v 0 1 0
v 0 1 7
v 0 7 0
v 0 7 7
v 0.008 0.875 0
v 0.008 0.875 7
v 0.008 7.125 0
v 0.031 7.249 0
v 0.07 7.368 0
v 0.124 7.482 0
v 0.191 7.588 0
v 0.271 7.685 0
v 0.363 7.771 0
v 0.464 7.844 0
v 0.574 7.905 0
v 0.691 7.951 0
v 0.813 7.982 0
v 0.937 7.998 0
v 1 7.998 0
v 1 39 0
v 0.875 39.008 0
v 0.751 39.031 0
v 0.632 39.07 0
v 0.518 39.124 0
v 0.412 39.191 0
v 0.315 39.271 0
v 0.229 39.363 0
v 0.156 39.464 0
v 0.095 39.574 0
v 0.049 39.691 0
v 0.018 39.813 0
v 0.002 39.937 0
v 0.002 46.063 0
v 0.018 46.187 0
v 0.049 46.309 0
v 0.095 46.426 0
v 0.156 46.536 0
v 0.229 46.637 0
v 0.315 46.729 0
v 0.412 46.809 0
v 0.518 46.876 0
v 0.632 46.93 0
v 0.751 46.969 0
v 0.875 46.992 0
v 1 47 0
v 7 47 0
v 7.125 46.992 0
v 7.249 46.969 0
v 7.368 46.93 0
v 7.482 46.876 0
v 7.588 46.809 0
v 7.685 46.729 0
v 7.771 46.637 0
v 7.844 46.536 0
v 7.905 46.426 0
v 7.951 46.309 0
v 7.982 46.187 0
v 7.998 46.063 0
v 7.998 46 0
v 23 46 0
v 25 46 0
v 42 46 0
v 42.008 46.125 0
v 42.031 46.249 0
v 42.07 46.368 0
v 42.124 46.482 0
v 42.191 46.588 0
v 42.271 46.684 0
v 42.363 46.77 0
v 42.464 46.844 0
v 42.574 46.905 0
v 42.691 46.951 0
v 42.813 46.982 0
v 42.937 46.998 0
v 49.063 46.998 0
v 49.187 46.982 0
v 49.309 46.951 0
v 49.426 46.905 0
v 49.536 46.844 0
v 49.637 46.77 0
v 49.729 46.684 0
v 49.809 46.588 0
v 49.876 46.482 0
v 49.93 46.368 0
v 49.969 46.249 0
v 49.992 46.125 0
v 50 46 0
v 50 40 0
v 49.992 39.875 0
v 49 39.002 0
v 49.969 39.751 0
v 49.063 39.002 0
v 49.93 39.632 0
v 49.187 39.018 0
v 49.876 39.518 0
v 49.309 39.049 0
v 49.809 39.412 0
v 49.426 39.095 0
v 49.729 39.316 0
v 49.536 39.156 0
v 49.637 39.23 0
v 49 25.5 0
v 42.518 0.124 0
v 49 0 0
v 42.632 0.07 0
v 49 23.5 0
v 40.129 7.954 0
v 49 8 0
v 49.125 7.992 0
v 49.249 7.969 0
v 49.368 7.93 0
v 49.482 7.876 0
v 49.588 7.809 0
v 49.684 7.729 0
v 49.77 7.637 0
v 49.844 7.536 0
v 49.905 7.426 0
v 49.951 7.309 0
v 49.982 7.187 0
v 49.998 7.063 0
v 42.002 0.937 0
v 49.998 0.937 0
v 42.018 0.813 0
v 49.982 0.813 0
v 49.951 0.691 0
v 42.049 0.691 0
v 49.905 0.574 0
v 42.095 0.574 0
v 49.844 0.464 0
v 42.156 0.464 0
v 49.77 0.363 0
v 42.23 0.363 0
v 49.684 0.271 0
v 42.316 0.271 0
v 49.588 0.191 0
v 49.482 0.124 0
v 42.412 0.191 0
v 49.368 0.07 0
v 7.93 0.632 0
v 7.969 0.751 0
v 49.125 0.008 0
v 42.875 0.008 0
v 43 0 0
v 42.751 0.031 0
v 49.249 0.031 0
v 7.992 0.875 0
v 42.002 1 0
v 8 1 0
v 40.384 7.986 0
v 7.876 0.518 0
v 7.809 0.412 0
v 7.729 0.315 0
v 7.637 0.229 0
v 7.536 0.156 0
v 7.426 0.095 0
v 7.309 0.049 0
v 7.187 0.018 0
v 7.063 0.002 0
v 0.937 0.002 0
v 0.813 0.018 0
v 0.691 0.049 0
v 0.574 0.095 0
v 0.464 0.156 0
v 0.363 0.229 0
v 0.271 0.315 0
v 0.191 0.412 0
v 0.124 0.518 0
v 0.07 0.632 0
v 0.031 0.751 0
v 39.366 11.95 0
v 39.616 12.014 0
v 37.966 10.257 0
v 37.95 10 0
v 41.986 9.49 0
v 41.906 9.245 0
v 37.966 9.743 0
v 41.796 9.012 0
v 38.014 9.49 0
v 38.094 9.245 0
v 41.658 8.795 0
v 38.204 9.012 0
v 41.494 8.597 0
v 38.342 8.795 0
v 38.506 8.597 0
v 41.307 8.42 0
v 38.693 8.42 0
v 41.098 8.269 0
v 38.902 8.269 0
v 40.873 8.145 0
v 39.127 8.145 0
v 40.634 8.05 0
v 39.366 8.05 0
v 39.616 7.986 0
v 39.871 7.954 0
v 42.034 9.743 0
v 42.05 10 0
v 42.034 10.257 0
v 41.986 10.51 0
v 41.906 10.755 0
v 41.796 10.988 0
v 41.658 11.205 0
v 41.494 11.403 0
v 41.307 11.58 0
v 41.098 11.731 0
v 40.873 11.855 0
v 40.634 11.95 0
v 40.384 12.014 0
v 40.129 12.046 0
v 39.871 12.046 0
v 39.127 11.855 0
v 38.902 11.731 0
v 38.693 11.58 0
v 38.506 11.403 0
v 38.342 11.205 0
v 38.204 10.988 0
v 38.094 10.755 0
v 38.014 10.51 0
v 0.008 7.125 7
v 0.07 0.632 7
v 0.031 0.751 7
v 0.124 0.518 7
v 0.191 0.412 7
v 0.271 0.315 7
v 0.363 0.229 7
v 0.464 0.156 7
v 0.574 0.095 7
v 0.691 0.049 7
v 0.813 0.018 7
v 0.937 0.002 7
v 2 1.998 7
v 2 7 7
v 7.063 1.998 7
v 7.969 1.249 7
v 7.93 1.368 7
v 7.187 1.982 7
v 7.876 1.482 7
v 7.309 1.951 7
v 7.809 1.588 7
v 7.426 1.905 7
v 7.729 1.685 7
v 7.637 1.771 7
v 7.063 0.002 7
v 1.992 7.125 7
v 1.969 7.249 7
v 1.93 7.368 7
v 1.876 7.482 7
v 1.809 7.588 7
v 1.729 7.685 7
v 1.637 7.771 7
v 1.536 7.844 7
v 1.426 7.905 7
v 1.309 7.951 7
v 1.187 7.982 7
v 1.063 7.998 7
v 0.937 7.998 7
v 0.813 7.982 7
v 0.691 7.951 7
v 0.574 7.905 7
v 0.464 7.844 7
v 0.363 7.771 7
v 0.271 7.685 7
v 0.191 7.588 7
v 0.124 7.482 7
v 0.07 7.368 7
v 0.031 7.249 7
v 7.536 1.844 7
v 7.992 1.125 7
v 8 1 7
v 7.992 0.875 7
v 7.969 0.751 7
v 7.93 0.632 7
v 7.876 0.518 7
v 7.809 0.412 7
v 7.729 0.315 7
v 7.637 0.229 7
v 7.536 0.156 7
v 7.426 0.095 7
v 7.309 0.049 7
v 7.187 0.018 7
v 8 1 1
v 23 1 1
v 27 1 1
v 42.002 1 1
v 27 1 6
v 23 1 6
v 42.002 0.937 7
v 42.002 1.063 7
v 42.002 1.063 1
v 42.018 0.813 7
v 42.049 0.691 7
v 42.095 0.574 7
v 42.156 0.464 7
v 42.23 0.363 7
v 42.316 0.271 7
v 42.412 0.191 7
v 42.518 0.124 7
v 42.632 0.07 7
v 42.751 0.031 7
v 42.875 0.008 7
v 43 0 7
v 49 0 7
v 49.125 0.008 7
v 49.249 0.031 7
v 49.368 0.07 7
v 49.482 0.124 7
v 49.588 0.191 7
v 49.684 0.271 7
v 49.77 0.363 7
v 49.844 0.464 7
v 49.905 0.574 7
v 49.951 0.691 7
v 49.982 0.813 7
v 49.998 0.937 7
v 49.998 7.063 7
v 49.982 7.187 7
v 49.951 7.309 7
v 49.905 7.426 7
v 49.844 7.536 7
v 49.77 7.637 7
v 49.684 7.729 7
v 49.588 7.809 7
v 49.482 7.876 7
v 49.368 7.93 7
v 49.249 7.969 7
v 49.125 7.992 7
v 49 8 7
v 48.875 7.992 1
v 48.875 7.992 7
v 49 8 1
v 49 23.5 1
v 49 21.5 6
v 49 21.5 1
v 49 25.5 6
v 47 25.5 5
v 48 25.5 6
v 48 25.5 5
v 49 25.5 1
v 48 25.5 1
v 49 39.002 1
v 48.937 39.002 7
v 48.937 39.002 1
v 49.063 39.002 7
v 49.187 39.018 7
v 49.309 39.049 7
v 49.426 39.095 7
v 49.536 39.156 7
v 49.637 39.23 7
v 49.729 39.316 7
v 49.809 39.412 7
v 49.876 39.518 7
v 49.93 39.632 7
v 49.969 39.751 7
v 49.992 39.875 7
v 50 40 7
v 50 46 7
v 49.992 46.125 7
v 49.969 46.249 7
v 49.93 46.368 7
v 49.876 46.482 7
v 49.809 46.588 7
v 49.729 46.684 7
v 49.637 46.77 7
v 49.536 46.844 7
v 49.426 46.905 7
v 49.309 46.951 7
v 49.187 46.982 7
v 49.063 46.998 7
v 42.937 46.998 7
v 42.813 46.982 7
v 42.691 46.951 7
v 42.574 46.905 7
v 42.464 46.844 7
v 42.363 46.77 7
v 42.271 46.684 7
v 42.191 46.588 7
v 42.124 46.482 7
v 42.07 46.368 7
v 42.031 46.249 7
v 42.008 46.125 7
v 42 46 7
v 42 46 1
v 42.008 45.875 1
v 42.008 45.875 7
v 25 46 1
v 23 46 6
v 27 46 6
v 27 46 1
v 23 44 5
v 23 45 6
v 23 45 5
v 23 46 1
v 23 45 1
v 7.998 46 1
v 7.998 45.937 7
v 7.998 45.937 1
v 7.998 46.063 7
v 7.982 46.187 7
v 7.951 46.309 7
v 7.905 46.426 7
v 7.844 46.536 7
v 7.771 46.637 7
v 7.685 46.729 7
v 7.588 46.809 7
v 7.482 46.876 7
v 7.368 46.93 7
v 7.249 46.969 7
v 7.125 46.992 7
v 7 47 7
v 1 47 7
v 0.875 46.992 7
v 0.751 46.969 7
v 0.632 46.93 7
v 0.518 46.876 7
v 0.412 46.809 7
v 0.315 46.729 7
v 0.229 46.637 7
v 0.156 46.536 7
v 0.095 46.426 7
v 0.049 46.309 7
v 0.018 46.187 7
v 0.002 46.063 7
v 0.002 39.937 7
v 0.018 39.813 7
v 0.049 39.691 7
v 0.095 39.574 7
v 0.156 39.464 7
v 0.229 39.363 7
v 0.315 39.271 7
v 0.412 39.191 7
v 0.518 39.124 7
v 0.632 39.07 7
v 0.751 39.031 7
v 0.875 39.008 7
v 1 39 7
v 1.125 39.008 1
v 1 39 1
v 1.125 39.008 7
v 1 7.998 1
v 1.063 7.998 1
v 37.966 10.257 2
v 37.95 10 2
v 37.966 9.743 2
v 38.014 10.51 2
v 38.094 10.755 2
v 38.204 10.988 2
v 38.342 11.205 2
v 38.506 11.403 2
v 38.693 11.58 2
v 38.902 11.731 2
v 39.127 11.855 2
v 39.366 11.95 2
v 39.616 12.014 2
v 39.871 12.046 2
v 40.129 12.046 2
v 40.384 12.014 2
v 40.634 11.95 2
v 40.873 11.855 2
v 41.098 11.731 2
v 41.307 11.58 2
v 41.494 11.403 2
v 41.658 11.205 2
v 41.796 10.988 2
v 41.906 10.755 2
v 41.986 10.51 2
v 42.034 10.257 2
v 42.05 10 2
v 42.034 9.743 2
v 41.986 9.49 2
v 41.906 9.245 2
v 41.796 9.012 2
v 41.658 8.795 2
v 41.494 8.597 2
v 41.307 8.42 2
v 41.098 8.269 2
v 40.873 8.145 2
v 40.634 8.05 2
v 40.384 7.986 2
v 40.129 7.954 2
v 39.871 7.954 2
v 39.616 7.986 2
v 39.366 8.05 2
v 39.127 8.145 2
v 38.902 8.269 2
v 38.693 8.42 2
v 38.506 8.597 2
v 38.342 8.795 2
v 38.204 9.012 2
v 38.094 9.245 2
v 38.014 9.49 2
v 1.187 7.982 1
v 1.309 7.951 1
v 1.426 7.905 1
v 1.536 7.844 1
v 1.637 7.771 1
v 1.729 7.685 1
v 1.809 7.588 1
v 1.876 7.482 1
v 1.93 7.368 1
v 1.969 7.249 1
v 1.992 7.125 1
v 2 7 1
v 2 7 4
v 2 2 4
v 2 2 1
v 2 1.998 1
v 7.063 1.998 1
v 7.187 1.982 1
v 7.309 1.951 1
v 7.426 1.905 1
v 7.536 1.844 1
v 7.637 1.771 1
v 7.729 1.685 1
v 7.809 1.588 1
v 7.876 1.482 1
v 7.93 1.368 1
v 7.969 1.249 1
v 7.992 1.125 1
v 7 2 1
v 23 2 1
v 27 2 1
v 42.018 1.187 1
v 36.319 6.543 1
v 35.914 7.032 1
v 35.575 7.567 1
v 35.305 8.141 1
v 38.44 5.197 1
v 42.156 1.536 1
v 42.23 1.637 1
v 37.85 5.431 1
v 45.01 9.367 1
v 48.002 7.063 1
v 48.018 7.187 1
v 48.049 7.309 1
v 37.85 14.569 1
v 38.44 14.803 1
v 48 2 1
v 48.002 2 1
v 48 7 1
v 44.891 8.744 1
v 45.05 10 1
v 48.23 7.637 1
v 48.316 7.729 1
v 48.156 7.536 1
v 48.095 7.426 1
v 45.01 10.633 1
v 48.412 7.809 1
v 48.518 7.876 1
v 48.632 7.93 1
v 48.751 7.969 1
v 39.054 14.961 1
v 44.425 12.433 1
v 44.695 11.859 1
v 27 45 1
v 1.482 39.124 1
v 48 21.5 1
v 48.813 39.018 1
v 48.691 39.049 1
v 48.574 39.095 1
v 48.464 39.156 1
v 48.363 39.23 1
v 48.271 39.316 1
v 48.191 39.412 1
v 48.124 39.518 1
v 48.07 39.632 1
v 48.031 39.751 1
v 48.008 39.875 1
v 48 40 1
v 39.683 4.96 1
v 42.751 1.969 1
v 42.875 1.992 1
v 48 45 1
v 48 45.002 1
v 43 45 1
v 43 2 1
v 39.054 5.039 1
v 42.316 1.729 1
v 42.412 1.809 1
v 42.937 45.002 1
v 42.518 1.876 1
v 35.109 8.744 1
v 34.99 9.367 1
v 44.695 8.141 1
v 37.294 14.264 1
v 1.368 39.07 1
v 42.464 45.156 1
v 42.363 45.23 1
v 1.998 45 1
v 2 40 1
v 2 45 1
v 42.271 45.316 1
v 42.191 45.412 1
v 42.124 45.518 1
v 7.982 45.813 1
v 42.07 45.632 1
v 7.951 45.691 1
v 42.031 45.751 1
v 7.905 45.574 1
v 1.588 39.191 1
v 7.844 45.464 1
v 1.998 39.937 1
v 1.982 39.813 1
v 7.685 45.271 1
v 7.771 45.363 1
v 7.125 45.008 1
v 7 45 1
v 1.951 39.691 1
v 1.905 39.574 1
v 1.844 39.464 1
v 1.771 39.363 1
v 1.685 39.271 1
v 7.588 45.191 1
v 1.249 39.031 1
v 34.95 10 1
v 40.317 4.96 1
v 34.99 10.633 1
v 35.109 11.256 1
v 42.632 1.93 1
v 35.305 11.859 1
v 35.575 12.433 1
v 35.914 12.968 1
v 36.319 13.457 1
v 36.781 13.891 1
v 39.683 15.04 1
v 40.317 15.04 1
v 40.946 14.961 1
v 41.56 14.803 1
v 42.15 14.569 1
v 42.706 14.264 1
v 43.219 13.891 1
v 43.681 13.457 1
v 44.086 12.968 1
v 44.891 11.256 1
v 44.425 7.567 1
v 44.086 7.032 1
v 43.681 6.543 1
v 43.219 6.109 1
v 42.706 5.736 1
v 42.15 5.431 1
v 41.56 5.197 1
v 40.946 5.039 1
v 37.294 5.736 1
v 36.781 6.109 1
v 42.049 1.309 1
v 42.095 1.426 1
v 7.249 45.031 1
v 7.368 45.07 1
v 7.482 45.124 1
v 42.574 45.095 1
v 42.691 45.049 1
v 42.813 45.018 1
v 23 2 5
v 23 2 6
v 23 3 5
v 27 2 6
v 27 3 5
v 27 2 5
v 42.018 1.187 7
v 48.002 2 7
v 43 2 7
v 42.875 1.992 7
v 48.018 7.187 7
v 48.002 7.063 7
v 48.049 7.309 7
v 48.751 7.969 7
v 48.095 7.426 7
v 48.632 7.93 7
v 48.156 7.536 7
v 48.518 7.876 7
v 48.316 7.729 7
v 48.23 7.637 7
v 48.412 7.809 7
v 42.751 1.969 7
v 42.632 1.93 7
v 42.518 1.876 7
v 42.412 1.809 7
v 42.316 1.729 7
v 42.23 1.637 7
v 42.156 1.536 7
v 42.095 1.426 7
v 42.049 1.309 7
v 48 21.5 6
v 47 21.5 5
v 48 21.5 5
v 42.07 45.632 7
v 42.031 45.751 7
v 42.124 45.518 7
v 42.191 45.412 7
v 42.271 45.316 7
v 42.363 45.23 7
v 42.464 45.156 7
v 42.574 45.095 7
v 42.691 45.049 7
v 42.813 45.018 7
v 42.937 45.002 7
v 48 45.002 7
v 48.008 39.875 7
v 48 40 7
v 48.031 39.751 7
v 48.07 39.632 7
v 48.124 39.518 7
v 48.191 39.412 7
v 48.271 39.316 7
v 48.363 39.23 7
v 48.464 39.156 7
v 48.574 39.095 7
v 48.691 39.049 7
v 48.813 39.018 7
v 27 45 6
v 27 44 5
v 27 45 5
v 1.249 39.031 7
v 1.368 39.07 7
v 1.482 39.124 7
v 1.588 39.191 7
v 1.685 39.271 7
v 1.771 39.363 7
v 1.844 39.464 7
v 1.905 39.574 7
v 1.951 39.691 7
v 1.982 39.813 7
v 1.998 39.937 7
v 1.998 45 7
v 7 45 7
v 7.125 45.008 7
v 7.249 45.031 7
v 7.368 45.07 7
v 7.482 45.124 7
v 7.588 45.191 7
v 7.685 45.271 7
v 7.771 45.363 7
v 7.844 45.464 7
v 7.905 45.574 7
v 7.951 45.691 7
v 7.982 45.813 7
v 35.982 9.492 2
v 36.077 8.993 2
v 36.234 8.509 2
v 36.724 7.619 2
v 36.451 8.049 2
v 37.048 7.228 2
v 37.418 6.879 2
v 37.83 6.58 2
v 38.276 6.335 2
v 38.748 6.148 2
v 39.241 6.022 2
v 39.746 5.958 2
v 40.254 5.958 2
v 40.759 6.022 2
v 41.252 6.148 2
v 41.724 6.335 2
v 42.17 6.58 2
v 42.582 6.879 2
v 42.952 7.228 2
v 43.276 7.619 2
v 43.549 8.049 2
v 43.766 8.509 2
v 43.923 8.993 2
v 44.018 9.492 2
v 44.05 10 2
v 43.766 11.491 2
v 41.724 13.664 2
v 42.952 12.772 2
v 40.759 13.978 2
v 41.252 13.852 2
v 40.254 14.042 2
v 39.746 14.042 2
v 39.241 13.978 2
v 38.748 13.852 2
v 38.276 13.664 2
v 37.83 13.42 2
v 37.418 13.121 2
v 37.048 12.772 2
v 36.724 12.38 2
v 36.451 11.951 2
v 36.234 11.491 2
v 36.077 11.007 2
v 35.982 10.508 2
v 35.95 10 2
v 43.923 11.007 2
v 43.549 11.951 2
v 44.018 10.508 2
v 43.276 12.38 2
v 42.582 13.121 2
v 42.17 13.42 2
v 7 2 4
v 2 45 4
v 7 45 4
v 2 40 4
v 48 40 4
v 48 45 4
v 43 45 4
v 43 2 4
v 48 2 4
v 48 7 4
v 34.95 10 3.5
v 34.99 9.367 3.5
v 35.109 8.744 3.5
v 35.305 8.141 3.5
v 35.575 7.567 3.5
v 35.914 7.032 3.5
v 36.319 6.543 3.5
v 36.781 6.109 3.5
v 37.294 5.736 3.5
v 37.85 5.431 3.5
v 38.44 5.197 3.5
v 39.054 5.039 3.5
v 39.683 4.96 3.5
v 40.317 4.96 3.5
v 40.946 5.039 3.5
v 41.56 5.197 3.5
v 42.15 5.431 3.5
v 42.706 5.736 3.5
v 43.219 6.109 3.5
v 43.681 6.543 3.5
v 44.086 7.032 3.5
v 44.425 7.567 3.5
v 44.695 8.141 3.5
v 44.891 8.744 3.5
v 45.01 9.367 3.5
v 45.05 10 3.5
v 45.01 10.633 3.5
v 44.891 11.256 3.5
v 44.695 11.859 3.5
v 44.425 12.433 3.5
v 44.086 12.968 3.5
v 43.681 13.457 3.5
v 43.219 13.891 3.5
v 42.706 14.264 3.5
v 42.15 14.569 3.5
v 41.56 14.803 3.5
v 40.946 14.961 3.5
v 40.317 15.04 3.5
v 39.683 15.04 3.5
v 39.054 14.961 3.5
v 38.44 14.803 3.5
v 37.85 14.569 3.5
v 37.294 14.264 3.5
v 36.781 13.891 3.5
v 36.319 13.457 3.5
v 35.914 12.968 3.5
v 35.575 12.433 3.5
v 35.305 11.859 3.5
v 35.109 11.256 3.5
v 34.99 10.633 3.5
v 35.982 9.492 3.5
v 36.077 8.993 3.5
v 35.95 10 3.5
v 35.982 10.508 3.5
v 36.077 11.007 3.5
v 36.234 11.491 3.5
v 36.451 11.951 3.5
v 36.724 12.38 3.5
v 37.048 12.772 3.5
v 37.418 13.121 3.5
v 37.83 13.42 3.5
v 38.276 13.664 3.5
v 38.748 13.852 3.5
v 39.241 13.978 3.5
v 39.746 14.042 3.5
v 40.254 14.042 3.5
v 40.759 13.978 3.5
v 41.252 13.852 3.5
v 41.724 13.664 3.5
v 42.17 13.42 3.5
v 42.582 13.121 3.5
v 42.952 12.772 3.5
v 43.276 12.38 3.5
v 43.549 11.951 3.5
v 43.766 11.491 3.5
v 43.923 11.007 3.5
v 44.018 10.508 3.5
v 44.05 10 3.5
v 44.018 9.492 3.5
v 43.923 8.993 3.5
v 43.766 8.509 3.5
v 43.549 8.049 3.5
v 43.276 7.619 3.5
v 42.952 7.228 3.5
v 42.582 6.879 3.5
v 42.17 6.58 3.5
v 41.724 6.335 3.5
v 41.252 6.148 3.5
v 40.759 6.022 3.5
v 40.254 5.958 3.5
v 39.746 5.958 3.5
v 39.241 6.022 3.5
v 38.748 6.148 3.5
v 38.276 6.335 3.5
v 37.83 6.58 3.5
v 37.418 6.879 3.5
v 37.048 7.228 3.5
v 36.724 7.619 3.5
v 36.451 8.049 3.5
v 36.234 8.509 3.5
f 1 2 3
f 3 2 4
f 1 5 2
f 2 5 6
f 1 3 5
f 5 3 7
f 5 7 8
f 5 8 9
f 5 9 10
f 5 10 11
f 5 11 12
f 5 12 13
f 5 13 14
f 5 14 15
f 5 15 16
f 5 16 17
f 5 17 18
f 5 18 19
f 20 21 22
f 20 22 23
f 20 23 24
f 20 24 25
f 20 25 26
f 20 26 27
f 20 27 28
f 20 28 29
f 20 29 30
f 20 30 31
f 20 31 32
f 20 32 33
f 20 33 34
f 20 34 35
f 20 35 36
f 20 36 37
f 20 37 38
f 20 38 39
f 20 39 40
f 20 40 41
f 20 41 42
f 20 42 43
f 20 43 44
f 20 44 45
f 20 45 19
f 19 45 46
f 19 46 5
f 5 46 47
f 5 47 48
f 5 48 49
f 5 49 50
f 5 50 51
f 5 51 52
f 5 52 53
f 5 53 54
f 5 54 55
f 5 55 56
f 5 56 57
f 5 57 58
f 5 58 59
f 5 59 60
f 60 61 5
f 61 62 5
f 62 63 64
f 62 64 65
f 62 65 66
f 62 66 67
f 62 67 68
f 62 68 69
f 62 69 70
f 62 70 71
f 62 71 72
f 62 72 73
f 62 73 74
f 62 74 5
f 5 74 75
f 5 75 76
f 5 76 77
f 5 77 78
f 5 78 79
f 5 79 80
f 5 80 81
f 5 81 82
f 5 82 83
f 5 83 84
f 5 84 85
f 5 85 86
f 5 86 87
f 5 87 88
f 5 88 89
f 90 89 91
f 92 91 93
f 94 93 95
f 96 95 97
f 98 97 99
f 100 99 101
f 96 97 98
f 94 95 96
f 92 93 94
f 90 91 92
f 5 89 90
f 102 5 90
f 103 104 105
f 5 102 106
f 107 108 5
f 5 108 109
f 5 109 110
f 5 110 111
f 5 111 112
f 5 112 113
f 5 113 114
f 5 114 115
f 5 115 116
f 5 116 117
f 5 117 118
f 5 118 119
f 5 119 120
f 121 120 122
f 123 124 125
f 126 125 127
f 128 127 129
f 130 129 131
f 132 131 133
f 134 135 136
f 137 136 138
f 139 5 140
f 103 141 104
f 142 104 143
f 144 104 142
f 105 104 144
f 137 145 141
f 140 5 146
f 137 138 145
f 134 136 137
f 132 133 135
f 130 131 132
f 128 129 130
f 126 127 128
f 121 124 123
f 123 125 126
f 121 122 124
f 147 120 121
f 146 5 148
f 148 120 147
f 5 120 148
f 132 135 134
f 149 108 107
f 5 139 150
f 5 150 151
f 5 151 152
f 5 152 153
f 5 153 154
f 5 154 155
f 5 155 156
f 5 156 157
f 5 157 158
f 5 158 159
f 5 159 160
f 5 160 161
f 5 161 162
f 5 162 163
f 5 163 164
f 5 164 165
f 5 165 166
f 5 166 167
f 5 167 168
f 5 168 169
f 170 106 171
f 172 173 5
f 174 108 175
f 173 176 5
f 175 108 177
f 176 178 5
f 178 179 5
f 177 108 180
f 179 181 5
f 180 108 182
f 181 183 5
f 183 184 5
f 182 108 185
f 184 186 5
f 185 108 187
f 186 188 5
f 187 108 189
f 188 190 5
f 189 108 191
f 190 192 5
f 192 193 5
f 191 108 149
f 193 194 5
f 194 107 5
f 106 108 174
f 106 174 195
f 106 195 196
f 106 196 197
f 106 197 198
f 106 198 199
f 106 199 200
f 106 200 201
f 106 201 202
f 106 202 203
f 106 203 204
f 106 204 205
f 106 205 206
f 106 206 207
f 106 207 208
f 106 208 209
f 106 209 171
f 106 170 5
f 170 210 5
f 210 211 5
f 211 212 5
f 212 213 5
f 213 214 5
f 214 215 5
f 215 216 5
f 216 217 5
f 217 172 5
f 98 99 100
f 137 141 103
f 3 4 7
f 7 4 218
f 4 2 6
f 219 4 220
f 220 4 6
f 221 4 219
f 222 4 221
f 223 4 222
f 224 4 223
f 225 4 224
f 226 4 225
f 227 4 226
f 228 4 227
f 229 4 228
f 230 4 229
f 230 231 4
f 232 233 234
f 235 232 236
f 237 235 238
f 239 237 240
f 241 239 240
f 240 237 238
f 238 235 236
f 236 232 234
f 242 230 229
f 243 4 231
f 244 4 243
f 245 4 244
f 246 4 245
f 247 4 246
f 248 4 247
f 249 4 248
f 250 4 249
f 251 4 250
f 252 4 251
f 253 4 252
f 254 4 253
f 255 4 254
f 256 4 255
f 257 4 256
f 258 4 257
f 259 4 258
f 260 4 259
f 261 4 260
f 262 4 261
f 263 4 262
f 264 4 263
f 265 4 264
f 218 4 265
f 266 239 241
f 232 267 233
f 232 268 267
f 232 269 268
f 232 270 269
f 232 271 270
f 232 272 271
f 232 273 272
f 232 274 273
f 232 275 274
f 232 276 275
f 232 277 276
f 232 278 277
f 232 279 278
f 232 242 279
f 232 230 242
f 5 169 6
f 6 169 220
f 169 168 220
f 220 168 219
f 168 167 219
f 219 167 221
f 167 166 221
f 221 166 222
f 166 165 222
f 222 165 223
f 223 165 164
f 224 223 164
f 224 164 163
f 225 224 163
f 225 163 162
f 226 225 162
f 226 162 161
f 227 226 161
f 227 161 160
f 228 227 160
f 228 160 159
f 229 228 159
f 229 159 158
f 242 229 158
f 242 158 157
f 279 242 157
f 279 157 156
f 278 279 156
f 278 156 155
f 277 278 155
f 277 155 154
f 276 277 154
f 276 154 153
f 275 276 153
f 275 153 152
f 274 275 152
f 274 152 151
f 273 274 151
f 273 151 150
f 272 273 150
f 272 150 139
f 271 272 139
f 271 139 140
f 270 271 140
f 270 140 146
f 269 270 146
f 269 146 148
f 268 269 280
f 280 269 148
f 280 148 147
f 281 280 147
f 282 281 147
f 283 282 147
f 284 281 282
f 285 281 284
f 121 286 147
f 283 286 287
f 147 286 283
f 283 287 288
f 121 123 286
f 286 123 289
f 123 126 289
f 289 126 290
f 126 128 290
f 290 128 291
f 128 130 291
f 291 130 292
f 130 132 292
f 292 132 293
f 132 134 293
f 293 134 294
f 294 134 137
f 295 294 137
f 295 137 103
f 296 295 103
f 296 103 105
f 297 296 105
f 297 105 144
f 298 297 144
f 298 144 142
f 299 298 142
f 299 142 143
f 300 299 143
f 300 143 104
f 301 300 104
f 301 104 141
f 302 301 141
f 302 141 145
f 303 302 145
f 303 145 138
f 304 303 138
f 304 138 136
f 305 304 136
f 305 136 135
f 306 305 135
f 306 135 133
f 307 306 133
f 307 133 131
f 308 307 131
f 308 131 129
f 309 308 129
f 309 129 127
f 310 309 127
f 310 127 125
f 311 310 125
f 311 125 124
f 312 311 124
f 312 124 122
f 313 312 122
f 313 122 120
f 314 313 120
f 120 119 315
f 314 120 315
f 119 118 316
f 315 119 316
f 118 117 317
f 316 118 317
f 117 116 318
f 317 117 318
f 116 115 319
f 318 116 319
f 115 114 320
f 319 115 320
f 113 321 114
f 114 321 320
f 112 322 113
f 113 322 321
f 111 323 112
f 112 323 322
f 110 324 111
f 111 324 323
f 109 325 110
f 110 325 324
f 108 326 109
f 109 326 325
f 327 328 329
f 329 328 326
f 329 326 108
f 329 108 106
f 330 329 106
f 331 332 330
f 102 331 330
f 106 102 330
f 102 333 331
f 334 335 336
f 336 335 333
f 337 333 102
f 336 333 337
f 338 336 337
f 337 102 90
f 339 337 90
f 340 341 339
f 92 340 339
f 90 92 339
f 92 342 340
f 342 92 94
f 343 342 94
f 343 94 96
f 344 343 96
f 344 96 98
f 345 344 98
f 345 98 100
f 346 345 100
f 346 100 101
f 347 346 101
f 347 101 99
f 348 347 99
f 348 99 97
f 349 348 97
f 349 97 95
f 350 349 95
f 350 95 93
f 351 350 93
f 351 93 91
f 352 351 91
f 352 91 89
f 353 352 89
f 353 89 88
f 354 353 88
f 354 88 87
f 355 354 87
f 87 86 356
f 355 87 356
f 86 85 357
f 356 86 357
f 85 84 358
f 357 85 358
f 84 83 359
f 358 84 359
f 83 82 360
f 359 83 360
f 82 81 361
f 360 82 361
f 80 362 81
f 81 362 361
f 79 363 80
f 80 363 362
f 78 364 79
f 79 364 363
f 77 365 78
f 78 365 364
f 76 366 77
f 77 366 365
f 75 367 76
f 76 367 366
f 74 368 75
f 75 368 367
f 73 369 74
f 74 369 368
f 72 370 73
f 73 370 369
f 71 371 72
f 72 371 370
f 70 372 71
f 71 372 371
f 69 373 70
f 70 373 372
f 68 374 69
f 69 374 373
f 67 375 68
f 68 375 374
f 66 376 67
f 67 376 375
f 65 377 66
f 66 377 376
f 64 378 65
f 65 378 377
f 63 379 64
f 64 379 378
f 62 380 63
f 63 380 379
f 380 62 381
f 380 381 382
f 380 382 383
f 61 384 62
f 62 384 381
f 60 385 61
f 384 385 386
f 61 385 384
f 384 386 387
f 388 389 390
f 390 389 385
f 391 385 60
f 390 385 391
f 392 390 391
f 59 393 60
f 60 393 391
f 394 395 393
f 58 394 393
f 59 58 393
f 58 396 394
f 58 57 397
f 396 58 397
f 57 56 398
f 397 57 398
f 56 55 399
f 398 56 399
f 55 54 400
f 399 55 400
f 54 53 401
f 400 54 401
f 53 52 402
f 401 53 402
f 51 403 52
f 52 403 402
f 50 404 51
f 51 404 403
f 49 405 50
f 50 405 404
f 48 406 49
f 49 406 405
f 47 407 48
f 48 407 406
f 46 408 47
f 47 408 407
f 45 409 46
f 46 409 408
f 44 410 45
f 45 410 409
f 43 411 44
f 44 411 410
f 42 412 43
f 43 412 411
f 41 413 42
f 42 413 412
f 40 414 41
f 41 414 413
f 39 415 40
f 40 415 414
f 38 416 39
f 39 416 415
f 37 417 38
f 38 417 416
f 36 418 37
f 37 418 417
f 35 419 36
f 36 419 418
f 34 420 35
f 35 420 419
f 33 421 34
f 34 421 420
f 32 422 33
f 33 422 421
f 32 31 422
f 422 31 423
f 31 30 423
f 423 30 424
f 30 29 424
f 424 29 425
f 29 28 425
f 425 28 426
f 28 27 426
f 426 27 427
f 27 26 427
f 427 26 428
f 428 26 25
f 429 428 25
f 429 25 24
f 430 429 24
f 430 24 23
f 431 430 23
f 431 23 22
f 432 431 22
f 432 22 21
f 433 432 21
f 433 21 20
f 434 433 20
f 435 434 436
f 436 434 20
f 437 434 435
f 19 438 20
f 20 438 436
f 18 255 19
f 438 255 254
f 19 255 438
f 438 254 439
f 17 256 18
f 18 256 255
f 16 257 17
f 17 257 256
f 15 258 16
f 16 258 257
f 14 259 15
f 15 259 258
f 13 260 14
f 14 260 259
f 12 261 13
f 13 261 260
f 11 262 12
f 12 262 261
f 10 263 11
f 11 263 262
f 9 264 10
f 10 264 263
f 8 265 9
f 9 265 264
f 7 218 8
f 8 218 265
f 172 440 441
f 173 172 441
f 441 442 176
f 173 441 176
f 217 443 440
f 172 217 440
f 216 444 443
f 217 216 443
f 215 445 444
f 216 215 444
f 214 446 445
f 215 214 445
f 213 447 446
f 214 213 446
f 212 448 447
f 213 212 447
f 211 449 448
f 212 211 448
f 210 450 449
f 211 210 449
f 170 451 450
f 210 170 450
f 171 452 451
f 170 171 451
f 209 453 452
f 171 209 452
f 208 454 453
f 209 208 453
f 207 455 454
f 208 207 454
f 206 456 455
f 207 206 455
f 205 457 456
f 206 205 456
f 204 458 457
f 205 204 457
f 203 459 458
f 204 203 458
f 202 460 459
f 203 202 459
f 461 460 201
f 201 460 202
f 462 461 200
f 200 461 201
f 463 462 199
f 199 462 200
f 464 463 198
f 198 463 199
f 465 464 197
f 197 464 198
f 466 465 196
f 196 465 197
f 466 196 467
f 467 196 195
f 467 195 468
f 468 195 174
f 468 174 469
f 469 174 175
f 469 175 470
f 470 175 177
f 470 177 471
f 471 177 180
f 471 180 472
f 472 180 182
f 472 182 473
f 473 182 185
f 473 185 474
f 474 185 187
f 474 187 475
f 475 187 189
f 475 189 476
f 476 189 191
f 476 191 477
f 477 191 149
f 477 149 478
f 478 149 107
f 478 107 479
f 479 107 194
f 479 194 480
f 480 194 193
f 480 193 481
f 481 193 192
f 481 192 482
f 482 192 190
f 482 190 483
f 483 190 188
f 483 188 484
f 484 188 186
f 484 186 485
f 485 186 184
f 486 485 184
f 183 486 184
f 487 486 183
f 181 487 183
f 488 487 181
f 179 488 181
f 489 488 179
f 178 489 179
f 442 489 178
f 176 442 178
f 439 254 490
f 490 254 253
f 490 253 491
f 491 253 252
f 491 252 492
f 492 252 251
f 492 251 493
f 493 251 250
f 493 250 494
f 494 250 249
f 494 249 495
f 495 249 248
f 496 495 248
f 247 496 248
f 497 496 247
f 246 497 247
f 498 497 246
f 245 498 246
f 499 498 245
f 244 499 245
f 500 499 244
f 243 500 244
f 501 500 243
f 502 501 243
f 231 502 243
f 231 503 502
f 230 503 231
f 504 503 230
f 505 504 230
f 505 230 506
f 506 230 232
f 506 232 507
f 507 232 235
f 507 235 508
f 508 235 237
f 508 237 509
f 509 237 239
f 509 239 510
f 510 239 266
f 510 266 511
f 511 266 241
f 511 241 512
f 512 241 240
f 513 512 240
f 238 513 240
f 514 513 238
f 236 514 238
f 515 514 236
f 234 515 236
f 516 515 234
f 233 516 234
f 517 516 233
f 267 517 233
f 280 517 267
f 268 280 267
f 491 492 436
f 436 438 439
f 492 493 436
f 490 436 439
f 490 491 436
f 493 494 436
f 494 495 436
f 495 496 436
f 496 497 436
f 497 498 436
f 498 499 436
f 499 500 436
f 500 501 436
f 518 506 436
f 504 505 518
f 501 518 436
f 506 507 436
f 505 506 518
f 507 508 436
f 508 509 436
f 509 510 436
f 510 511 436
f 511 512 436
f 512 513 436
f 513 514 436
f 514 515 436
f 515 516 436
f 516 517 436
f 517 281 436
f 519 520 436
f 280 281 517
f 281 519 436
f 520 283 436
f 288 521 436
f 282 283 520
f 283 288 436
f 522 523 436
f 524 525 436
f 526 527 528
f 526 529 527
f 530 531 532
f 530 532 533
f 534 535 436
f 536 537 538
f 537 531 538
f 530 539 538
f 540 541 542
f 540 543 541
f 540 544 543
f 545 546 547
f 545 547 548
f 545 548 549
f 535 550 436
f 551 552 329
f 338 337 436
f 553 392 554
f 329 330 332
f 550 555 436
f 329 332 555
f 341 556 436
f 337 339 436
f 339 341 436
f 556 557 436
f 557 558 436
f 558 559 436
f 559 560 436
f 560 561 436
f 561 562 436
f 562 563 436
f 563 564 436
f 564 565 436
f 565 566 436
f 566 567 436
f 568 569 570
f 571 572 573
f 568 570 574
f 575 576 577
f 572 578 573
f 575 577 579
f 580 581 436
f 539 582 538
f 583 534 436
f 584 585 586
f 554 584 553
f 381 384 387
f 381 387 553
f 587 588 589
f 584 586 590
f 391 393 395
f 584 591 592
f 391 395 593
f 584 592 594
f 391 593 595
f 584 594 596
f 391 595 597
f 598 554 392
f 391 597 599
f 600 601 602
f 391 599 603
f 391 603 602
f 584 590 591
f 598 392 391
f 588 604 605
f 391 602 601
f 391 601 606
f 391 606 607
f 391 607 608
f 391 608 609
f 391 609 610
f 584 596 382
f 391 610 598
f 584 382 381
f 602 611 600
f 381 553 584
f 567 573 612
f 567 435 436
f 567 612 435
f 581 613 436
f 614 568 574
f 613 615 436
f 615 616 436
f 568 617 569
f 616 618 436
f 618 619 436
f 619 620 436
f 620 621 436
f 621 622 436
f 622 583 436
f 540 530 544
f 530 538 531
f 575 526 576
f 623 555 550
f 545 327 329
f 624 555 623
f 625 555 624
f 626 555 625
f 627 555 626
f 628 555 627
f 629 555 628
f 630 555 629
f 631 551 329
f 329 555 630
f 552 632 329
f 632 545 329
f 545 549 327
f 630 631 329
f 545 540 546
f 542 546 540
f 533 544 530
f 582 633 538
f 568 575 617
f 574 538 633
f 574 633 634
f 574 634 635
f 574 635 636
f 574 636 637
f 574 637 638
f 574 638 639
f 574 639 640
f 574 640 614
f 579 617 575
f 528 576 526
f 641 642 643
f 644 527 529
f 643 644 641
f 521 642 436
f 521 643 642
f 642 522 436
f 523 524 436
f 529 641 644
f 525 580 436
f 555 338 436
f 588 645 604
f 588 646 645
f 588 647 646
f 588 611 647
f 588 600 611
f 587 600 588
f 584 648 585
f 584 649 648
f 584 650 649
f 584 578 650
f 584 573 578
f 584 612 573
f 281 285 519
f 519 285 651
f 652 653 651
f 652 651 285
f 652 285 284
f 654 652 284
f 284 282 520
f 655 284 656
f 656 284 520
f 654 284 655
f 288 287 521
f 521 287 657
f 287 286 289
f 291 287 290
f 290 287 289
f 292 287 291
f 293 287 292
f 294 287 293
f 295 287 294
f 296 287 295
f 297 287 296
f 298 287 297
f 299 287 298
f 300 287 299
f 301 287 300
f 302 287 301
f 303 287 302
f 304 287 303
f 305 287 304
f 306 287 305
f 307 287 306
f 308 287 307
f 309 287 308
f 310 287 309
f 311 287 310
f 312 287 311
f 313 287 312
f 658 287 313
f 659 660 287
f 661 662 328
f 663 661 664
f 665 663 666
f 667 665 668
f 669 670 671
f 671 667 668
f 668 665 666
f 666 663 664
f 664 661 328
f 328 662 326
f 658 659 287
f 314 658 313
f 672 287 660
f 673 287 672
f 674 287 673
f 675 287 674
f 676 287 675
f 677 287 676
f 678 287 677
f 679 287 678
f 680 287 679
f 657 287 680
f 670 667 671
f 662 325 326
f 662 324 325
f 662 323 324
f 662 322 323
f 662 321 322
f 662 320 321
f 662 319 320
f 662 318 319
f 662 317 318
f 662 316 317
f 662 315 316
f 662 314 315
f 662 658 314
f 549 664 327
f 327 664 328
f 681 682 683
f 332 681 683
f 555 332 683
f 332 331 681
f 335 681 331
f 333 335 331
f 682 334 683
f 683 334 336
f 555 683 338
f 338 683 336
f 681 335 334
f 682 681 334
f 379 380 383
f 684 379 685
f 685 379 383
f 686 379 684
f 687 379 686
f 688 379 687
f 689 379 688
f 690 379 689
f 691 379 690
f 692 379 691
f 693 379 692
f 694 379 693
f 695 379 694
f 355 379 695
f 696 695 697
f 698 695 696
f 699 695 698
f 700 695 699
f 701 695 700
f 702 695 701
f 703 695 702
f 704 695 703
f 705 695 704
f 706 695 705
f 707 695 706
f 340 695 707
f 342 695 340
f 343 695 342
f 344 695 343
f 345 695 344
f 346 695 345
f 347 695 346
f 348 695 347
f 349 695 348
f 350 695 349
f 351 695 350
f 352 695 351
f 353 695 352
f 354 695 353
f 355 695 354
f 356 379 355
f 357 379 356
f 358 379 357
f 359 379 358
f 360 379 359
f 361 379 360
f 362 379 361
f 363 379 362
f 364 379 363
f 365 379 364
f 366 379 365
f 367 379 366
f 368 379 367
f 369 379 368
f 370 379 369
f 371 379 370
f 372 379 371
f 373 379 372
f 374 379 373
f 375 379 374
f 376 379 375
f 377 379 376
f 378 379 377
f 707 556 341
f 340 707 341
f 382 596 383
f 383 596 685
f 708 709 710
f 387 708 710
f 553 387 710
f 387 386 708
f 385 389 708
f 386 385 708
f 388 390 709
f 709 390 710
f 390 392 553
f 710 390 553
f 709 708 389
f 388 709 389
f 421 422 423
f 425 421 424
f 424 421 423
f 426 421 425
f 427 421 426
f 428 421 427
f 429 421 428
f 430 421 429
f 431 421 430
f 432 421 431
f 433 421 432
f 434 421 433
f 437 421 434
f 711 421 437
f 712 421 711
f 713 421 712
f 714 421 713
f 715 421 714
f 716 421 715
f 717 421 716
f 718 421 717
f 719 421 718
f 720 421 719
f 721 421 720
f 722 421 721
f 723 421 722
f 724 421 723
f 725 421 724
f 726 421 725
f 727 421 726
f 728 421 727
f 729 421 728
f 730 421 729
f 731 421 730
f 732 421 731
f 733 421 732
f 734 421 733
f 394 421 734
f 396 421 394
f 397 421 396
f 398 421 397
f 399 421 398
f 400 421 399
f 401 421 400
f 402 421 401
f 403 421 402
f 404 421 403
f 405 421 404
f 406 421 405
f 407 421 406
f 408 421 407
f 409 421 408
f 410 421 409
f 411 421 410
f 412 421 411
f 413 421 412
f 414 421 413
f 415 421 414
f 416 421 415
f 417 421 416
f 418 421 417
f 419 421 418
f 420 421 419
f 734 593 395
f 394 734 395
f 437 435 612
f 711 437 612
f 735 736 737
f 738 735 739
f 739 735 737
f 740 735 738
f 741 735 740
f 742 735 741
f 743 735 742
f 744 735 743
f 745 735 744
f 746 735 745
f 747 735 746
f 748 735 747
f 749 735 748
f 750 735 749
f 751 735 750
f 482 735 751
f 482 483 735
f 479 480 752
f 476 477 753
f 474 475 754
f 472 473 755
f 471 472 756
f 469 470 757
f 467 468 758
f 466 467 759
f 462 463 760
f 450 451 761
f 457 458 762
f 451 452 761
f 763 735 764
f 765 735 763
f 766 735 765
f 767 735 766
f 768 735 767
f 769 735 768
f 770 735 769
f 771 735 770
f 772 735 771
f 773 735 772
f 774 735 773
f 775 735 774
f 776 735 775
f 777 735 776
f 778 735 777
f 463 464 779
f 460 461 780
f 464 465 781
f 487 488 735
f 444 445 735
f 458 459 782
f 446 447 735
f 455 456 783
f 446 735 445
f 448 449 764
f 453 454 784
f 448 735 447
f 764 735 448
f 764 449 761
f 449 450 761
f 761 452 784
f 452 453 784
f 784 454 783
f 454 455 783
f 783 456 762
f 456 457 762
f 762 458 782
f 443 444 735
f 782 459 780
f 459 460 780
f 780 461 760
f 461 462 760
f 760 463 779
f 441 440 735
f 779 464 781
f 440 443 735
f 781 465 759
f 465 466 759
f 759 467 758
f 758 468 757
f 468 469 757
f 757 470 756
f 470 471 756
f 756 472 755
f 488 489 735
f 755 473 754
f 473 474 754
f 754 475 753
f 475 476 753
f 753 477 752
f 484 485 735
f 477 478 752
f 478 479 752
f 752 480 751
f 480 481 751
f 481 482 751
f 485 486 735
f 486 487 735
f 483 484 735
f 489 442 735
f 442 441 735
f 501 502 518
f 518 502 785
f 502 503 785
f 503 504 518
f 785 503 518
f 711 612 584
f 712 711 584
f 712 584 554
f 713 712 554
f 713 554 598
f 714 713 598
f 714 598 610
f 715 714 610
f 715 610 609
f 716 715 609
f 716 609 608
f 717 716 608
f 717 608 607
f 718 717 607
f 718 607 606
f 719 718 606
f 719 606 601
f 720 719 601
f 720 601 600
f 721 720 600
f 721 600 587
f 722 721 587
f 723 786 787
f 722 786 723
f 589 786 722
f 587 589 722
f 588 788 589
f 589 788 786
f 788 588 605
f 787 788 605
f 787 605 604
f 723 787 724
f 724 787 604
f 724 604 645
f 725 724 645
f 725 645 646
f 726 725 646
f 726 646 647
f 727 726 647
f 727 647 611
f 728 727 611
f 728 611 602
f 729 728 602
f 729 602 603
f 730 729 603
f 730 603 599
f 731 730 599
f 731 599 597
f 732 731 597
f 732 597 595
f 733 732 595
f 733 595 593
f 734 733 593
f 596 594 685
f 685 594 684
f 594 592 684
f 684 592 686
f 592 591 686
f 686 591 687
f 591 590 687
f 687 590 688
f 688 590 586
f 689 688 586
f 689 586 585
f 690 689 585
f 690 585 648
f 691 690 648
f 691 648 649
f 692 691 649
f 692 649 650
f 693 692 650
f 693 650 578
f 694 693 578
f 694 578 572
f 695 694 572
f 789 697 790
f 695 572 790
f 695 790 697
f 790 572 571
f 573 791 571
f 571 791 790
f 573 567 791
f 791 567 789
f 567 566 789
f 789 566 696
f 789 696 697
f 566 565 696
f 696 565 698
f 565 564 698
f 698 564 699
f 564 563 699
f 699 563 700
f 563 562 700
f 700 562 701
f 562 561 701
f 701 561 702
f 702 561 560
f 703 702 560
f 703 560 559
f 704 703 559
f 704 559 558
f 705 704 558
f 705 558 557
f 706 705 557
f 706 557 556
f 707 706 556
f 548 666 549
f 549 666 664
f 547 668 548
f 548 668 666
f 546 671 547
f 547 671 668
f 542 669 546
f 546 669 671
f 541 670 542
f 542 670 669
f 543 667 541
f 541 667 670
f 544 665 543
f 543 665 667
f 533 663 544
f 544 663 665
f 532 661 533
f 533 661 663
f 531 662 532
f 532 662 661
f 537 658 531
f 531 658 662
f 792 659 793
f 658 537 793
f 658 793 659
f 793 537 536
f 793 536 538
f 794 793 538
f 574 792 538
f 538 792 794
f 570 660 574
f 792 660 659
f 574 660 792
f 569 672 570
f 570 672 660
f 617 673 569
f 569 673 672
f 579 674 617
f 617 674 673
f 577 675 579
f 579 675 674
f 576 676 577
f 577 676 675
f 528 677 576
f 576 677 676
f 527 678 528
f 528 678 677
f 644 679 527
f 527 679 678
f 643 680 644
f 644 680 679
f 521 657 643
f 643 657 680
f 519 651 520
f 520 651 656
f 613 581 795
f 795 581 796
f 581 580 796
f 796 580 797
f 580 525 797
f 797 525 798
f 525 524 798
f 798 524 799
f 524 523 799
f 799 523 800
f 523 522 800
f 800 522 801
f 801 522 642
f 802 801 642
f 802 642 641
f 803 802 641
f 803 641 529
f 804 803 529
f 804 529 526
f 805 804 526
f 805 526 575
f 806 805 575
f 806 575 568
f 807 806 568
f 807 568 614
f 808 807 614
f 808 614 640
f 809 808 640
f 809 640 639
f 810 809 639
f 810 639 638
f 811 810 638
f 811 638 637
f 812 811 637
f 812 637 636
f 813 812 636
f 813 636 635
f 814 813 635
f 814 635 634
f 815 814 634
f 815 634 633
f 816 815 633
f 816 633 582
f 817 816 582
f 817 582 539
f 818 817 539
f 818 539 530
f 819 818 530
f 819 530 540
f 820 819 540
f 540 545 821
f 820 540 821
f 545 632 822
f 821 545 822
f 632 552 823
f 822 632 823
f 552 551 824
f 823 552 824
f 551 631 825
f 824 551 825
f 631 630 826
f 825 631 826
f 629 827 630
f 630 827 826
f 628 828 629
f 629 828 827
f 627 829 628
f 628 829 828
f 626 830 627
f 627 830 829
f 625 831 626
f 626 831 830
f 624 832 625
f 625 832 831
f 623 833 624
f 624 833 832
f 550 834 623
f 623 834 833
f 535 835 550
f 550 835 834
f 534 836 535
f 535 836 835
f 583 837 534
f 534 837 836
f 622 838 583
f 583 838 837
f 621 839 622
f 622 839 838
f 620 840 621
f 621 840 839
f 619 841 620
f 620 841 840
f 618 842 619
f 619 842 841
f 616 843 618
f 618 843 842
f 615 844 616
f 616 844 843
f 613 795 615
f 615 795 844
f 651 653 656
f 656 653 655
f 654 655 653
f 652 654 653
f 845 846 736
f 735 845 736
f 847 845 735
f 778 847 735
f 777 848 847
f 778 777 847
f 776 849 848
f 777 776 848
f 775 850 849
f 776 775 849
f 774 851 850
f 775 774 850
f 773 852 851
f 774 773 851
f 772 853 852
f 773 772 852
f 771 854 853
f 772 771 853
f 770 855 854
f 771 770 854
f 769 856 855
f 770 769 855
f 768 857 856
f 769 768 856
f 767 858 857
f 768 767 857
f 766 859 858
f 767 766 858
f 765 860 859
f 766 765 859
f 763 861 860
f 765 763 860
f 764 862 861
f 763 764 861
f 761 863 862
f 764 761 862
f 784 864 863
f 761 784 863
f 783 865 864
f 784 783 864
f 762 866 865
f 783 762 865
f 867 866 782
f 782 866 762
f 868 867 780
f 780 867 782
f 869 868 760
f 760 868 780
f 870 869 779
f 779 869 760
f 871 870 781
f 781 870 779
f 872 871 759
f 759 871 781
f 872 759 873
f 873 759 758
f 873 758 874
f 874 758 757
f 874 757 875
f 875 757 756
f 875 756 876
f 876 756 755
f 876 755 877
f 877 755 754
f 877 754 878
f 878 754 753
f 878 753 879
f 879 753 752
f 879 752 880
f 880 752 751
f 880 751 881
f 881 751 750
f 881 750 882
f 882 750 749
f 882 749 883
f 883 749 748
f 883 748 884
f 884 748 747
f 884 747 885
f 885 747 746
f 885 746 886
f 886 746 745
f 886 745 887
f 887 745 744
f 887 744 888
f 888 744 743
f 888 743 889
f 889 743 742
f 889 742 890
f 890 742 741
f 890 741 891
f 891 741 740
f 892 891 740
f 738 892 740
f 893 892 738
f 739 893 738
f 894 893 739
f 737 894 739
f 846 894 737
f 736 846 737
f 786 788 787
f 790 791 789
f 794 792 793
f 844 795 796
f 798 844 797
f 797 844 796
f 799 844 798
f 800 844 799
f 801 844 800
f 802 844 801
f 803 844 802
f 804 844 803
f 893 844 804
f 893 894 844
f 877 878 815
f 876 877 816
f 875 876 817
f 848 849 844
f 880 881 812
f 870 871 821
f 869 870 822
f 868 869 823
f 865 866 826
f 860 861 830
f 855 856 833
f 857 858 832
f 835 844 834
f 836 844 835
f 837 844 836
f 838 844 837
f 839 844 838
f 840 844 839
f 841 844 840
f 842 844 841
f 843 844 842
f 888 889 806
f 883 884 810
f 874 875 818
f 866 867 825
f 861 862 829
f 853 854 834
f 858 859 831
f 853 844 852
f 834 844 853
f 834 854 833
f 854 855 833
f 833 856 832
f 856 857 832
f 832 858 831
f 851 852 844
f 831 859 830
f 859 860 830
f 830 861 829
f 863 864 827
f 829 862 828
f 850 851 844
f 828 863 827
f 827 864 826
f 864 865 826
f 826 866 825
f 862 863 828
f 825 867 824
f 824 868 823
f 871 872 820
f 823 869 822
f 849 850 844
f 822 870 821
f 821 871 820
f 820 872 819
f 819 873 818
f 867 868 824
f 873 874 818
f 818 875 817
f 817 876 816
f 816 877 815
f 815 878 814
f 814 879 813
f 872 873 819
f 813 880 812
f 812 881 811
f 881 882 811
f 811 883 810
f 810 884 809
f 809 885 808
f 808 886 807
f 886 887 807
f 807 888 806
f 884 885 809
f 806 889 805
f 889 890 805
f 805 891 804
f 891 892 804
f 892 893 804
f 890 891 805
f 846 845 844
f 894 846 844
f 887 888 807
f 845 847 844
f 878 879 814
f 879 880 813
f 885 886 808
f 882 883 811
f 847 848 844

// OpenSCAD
module support(x, y, ang, length, height) {
	border=2;
	translate([x,y,0])
	rotate(a=ang)
		union() {
			polyhedron(
				points=[ [0,0,0], [0,length,0], [length,0,0],
  	                [0,0,height], [0,length,height], [length,0,height] ],
				triangles=[ [2,1,0], [3,4,5], 
  	                   [1,5,4], [2,5,1],
								[2,0,5], [0,3,5],
								[4,3,0], [0,1,4] ]
			);
			hull() {
				translate([length, -border/2, 0])
					cylinder(r=border/2, h=7);
				translate([-border/2, -border/2, 0])
					cylinder(r=border/2, h=7);
			}
			hull() {
				translate([-border/2, length, 0])
					cylinder(r=border/2, h=7);
				translate([-border/2, -border/2, 0])
					cylinder(r=border/2, h=7);
			}
		}
}

module snapper(x,y, height, length, ang) {
	translate([x,y,0])
	rotate(a=ang)
	translate([-length/2,-1,0])
		cube(size=[length,1,height]);

	translate([x,y,height-1])
	rotate(a=ang)
	translate([-length/2,0,0])
		difference() {
			cube(size=[length,1,1]);
			translate([0,1,0])
			rotate([45,0,0])
				cube(size=[length,2,2]);
		}
}

module trove(xsize, ysize) {
	height = 7;
	border = 2;

	translate([border,border,0])
	union() {
		// frame
		translate([-border/2, -border/2, 0])
			cube(size=[xsize+border, ysize+border, 1]);
/*		difference() {
			hull() {
				translate([0,0,0])
					cylinder(r=border, h=height);
				translate([xsize,,0])
					cylinder(r=border, h=height);
				translate([0,ysize,0])
					cylinder(r=border, h=height);
				translate([xsize,ysize,0])
					cylinder(r=border, h=height);
			}
			translate([0,0,1])
				cube(size=[xsize,ysize,height-1]);

			translate([10,0-border,1])
				cube(size=[xsize-20,ysize+2*border,height-1]);

			translate([0-border,10,1])
				cube(size=[xsize+2*border,ysize-20,height-1]);

		}*/

 	   // auflagen
		support(0,0, 0, 5, 4);
		support(xsize,0, 90, 5, 4);
		support(0,ysize, 270, 5, 4);
		support(xsize,ysize, 180, 5, 4);

		//nubsies
		//snapper(0, (ysize/2), height, 4, 270);
		snapper(xsize, (ysize/2), height-1, 4, 90);
		snapper((xsize/2), 0, height-1, 4, 0);
		snapper((xsize/2), ysize, height-1, 4, 180);
	}
}

module trove_with_hole(xsize, ysize, xpos, ypos, diameter) {
	rad = diameter/2;
	difference() {	
		union() {
			trove(xsize, ysize);
			translate([xpos,ypos,0])
			cylinder(h=3.5, r=rad+3);	
		}	
		translate([xpos,ypos,0])
			cylinder(h=3.5, r=rad);
		translate([xpos,ypos,2])
			cylinder(h=1.5, r=rad+2);
	}
}


$fn=50;
trove_with_hole(46,43, 40,10,4.1);
